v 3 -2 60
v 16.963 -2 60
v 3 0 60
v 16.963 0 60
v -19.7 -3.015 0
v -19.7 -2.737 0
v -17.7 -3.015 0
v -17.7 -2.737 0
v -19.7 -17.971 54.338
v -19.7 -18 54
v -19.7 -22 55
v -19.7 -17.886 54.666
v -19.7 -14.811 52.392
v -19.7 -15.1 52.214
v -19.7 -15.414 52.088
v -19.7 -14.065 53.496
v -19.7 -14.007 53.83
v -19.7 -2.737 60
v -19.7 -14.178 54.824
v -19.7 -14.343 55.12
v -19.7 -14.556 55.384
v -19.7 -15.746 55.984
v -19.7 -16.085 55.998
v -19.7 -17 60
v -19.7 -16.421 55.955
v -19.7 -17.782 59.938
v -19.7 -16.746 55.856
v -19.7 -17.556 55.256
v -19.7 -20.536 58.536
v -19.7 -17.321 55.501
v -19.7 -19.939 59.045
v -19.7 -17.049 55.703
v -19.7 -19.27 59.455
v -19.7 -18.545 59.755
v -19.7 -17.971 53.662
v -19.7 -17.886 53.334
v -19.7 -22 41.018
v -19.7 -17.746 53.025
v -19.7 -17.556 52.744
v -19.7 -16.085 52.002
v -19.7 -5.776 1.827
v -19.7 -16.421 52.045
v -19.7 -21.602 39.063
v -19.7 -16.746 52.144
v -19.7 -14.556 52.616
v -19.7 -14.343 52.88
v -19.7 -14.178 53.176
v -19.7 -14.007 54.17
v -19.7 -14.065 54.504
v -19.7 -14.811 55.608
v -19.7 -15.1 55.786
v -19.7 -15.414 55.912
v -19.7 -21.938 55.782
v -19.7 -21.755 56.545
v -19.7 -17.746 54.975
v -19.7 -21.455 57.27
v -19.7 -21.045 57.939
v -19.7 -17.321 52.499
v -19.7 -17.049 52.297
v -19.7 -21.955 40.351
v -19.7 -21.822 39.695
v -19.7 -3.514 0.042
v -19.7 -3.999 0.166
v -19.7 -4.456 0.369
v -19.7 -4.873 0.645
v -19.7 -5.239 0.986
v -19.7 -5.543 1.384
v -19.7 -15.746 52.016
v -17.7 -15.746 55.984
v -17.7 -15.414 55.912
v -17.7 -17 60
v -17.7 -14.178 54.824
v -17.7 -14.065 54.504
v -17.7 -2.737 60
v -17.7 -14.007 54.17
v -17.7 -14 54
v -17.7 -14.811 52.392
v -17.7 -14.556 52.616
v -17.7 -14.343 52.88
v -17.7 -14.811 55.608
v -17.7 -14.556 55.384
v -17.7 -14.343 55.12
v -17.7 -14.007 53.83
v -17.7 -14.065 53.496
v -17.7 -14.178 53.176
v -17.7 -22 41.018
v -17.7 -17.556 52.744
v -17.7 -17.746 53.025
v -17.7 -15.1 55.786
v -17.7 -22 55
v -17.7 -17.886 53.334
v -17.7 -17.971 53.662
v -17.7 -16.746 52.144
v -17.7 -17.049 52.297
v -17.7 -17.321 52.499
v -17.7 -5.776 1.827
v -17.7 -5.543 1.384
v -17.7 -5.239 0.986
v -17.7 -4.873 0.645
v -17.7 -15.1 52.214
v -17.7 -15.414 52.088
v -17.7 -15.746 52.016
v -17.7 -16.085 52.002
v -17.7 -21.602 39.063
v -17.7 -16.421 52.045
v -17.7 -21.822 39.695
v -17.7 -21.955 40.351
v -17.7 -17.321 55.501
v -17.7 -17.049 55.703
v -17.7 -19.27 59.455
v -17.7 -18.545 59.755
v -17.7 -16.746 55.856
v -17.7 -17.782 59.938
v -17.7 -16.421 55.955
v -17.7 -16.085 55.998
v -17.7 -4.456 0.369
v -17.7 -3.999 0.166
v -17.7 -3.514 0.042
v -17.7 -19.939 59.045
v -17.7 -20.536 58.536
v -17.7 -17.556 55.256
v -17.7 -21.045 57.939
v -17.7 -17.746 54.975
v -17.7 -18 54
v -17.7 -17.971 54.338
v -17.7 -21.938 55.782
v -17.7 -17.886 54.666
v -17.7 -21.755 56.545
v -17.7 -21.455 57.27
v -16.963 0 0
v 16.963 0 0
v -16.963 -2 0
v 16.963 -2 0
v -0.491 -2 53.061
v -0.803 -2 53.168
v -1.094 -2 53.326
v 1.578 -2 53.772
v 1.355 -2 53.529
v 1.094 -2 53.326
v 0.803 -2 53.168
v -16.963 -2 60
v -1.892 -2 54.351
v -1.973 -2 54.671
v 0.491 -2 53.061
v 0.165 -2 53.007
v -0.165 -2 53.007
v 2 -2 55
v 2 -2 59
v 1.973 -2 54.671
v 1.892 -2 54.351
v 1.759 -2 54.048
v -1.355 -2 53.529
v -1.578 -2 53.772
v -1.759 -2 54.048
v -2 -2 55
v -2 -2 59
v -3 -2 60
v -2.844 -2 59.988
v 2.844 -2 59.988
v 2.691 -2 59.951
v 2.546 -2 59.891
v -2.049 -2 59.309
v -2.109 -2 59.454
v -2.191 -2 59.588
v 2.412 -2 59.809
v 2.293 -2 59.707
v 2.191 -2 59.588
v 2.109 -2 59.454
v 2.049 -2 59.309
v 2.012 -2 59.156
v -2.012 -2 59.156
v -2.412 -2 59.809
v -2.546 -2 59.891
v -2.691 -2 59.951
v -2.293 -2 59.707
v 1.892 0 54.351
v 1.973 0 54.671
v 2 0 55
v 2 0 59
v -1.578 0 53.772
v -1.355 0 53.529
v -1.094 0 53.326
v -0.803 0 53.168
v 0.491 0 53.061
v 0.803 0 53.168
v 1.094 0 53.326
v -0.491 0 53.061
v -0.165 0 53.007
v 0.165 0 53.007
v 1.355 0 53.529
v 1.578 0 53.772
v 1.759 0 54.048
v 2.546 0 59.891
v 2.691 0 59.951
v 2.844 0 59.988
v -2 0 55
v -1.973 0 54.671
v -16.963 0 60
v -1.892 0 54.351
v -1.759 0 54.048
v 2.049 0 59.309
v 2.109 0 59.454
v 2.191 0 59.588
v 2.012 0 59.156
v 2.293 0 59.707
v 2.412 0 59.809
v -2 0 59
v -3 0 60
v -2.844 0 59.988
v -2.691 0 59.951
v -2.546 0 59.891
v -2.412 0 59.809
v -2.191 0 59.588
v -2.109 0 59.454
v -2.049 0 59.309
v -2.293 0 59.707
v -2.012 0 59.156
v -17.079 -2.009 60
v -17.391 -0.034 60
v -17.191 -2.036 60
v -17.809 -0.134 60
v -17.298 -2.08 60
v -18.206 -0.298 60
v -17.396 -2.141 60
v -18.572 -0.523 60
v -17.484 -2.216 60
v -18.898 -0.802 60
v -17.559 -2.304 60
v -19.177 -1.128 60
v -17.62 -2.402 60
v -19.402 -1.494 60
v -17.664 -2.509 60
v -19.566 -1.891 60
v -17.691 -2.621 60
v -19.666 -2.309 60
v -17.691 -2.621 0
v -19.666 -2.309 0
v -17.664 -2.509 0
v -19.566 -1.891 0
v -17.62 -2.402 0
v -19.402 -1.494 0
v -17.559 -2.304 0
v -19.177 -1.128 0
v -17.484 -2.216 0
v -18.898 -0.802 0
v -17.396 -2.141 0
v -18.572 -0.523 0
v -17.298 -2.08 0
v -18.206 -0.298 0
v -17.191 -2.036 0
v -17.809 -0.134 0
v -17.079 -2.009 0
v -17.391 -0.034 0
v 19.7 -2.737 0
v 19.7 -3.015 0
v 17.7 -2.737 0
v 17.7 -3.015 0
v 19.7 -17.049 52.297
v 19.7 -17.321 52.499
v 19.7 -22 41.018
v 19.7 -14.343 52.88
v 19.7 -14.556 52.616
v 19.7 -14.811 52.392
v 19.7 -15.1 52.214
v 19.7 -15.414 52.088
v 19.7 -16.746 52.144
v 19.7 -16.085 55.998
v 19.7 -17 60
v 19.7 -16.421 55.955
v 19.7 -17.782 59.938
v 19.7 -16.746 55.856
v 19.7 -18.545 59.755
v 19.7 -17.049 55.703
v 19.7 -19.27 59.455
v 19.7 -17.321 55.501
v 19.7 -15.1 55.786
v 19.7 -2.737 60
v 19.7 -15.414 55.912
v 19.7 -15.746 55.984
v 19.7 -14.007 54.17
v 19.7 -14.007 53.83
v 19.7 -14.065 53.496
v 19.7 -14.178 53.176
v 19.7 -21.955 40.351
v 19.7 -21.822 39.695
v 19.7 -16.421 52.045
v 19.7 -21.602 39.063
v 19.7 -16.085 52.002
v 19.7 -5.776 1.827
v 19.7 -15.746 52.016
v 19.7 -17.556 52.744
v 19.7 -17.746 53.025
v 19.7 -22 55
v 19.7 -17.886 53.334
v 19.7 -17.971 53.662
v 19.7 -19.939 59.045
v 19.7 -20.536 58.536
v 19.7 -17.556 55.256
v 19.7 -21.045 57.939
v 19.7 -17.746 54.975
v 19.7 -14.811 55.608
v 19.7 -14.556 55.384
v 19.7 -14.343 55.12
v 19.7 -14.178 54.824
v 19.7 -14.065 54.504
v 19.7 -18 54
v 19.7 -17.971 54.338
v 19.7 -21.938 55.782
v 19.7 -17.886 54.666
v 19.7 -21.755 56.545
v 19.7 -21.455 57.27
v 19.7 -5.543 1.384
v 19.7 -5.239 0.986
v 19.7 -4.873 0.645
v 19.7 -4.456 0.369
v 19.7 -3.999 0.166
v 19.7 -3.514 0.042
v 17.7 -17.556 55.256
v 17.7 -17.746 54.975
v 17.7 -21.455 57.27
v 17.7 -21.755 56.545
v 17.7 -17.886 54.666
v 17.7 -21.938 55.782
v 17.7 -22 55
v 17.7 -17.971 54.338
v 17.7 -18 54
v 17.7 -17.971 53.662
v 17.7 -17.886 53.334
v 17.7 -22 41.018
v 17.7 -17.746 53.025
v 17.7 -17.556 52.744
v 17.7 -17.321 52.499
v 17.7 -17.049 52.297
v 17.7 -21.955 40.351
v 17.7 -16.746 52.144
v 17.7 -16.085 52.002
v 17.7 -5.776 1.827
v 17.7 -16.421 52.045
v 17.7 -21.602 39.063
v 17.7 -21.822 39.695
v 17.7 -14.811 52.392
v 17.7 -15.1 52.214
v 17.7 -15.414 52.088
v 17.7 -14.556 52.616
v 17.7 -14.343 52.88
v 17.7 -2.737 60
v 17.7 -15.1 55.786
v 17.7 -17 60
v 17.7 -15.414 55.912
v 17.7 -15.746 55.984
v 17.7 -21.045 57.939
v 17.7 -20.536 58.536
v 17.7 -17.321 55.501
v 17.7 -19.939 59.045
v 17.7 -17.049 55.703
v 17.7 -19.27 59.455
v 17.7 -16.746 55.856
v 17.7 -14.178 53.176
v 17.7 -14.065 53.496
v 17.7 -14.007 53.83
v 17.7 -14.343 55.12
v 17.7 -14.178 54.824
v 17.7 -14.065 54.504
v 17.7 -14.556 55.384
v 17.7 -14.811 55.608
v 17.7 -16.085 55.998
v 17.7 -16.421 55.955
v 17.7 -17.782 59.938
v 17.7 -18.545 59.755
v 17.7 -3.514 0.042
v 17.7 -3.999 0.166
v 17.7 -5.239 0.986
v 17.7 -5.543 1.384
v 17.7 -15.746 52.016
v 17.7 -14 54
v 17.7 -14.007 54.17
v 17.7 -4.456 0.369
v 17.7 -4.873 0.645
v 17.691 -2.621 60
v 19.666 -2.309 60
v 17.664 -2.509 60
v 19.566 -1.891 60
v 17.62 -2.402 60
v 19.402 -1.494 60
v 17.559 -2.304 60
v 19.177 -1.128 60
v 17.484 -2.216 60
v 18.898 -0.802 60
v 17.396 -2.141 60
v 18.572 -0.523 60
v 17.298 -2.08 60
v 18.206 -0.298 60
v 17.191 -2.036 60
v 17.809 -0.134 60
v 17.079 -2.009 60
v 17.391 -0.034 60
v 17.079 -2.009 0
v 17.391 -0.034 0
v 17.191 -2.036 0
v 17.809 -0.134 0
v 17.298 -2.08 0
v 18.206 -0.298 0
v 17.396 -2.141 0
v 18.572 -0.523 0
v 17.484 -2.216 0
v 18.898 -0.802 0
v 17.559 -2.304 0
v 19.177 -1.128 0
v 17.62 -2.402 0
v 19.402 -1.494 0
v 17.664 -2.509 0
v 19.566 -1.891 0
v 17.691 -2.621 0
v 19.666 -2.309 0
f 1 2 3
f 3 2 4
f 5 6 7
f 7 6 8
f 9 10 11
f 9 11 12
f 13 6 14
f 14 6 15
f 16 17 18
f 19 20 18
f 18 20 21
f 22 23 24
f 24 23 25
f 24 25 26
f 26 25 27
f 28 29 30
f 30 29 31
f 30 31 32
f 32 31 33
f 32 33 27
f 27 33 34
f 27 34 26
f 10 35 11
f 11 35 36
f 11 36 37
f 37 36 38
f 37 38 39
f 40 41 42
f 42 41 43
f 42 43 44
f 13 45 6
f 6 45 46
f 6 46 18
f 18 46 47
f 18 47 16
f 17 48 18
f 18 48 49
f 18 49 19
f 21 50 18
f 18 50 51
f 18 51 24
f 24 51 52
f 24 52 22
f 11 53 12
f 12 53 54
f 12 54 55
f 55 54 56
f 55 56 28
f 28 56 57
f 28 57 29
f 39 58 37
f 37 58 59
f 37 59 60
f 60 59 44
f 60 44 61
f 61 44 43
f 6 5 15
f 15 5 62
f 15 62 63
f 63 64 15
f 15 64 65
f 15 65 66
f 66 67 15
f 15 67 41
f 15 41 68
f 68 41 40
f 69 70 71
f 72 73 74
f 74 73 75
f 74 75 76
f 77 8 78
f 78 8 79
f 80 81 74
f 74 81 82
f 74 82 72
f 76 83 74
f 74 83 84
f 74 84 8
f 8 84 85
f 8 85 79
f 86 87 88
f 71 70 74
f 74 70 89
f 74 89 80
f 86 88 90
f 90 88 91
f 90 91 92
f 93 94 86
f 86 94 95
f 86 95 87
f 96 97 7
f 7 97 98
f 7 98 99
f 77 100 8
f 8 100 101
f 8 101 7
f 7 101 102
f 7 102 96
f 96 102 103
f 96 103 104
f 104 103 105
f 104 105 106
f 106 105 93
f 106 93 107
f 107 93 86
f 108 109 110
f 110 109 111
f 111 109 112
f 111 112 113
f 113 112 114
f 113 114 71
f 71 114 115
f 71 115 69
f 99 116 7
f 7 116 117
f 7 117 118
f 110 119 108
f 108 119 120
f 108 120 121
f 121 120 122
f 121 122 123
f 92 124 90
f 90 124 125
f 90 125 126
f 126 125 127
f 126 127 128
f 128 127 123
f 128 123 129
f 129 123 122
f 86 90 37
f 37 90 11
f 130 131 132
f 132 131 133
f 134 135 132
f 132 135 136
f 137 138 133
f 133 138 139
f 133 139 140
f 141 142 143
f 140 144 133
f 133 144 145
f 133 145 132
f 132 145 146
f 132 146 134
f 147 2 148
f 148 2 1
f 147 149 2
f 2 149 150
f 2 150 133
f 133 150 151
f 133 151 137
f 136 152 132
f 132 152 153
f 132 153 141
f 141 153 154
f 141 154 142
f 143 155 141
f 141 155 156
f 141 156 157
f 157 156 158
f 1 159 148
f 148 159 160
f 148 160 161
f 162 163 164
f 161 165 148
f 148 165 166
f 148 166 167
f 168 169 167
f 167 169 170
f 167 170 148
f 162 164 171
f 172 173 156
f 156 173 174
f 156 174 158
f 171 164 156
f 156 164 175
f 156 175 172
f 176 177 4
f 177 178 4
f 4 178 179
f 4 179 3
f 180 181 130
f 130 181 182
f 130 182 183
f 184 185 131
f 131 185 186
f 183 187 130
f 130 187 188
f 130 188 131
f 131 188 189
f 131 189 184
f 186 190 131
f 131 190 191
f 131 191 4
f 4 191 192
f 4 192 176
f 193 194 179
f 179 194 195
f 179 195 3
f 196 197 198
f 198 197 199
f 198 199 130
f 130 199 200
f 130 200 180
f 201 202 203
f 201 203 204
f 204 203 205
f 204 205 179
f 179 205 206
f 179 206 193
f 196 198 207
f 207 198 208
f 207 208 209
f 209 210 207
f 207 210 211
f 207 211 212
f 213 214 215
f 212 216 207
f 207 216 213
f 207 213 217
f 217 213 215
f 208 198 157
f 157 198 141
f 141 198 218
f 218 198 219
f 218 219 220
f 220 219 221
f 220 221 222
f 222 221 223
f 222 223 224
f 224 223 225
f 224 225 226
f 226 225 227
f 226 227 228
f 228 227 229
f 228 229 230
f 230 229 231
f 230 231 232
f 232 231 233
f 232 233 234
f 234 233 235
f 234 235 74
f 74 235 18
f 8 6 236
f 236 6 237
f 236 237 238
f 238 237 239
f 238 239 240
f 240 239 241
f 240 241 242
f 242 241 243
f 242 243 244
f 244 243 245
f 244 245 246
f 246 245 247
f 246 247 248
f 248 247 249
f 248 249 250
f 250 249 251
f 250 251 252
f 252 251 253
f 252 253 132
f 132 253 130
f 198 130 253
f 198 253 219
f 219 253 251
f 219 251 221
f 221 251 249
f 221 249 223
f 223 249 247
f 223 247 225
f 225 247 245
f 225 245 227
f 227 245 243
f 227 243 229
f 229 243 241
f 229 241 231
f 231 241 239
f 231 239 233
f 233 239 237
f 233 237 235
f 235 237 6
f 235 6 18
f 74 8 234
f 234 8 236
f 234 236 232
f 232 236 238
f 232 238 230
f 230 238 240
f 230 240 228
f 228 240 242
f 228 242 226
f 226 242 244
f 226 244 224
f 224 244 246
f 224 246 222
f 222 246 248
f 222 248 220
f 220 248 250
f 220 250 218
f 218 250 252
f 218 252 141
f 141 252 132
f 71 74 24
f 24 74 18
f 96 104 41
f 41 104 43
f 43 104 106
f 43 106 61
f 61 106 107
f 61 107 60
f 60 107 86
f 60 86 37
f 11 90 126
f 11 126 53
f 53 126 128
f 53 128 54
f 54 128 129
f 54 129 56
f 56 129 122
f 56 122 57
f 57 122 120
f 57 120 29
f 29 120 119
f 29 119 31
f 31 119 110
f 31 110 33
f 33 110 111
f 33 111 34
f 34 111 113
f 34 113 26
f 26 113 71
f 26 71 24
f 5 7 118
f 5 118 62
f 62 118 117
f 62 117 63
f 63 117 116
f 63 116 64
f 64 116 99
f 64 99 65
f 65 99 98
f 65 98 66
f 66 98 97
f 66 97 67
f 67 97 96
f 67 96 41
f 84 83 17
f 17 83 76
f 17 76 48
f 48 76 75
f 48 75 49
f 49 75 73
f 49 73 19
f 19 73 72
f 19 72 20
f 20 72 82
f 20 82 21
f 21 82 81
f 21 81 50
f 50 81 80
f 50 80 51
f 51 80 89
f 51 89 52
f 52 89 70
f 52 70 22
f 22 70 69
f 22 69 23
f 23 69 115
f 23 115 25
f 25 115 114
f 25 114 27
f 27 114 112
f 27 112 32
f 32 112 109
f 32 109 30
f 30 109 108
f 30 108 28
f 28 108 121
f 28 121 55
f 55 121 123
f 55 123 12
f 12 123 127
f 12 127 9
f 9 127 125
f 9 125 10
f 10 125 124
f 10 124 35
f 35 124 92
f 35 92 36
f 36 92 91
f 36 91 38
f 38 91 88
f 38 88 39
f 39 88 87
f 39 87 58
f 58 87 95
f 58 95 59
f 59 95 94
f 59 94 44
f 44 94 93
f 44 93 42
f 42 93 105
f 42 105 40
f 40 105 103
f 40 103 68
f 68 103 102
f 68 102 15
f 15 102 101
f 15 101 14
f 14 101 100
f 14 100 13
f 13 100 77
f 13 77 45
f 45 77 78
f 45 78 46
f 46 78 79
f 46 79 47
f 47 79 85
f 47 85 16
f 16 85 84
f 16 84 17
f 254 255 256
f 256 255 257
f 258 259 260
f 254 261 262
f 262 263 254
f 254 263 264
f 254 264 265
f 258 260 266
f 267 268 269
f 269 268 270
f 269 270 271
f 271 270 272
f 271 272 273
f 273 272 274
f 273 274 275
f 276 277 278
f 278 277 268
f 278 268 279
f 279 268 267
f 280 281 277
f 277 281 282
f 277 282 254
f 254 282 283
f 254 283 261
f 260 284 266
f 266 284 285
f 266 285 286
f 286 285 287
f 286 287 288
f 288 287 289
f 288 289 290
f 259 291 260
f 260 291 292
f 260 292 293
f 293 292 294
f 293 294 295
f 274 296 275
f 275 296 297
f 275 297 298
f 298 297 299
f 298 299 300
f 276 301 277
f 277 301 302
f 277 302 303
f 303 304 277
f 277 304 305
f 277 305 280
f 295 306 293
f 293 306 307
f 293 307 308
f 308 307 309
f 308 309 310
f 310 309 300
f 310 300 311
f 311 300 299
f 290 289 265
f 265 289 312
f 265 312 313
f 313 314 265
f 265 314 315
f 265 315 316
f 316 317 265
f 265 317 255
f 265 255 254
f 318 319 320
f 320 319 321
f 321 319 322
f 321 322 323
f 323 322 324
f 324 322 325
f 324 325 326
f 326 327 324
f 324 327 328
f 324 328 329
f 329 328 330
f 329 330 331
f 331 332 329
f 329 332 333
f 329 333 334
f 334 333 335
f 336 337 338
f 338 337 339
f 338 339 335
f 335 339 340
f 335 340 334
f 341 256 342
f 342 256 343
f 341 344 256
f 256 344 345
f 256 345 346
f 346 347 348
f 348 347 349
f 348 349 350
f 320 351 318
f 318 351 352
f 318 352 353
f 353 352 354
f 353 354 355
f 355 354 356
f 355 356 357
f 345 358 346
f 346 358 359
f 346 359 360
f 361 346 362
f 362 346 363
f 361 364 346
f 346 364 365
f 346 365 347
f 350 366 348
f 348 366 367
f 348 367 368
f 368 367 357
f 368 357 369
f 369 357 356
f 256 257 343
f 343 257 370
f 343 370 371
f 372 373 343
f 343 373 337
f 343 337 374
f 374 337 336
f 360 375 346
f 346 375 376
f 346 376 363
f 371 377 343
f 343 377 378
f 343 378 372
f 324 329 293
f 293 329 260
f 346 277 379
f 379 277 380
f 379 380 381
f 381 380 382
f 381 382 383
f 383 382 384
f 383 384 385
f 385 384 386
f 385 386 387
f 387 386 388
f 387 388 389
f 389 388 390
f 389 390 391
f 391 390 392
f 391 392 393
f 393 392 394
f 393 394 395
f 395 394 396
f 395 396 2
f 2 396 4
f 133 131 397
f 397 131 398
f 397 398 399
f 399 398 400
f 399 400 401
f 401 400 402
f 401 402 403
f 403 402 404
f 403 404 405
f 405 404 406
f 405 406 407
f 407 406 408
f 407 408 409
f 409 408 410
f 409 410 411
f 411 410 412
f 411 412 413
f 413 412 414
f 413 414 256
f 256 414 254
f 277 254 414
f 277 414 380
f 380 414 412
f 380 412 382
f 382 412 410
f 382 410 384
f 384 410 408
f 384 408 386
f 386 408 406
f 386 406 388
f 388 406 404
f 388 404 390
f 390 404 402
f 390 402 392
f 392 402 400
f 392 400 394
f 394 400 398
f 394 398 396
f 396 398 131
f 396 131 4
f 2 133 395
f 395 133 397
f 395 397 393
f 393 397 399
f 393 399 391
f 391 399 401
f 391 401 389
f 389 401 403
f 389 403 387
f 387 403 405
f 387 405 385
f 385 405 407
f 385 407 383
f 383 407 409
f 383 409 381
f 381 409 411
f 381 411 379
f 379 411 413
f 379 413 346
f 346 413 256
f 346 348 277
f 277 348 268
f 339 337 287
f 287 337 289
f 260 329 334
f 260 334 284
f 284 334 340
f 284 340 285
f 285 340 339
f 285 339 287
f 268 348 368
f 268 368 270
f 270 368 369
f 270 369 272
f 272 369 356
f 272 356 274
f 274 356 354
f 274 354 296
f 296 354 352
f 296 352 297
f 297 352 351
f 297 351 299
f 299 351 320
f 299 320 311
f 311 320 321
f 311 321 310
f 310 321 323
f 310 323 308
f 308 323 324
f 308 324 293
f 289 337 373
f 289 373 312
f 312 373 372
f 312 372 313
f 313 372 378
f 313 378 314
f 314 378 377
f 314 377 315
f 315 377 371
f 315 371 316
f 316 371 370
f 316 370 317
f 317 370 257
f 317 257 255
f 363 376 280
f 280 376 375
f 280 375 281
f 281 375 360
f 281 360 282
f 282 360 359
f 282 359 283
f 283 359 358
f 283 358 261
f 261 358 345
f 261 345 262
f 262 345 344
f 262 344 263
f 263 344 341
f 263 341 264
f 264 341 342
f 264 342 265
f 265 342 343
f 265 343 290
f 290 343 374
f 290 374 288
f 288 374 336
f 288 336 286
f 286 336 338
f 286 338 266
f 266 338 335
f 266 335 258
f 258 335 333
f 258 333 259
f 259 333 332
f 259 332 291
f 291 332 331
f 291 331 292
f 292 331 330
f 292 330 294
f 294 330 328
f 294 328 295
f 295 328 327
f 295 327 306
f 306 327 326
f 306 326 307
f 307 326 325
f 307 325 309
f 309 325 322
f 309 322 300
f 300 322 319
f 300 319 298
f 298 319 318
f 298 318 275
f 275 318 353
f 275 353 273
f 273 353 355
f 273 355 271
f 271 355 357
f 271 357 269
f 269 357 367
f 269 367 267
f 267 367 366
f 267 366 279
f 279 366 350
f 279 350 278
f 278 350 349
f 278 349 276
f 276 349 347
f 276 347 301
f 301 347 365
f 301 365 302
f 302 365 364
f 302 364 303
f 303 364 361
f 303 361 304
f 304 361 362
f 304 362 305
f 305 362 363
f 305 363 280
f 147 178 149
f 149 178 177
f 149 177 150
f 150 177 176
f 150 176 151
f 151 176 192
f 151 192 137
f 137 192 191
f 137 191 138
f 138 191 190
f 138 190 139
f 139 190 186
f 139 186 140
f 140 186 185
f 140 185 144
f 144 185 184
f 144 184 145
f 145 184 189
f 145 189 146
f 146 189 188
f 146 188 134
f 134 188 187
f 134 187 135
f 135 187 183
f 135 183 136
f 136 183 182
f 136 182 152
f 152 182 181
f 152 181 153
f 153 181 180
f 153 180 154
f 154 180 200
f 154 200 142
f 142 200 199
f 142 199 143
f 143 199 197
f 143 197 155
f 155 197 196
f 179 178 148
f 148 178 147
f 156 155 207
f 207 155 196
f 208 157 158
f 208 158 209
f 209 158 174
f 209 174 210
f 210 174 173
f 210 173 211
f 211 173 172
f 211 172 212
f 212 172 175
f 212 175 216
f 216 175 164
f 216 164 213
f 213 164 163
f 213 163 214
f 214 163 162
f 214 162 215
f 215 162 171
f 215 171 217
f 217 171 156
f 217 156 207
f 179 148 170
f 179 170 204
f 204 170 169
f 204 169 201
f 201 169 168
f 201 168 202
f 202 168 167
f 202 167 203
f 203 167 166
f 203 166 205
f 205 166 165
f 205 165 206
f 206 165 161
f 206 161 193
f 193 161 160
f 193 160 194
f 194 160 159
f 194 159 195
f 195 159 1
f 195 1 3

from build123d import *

# Parameters (mm, degrees)
SKETCH1_W                    = 17.7
SKETCH1_H                    = 60
BASE_FLANGE2_DEPTH           = 2
EDGE_FLANGE2_STRIP_W         = 9.4732
EDGE_FLANGE2_STRIP_H         = 2
EDGE_FLANGE2_STRIP_CUT_DEPTH = 60
EDGE_FLANGE2_DEPTH           = 60
CUT_EXTRUDE5_DEPTH           = 2
FILLET4_R                    = 5
FILLET5_R                    = 3
SKETCH22_R                   = 2
CUT_EXTRUDE6_DEPTH           = 2
CUT_EXTRUDE7_DEPTH           = 2
FILLET6_R                    = 1


# Sheet-metal steps are written as plain solids
with BuildPart() as part:
    # Sketch1 → Base-Flange2 (new body)
    with BuildSketch(Plane(origin=(0, 0, 0), x_dir=(1, 0, 0), z_dir=(0, 1, 0))):
        with Locations((-8.85, -30)):
            Rectangle(SKETCH1_W, SKETCH1_H)
    extrude(amount=-BASE_FLANGE2_DEPTH)

    # Edge-Flange2 strip (across the edge) → Edge-Flange2 strip cut (cut)
    with BuildSketch(Plane(origin=(-17.7, -2, 60), x_dir=(1, 0, 0), z_dir=(0, 0, -1))):
        with Locations((-4, -1)):
            Rectangle(EDGE_FLANGE2_STRIP_W, EDGE_FLANGE2_STRIP_H)
    extrude(amount=EDGE_FLANGE2_STRIP_CUT_DEPTH, mode=Mode.SUBTRACT)

    # Edge-Flange2 section (across the edge) → Edge-Flange2 (add)
    with BuildSketch(Plane(origin=(-17.7, -2, 60), x_dir=(1, 0, 0), z_dir=(0, 0, -1))):
        with BuildLine():
            Line((-2, 0.7366), (-2, 20))
            Line((-2, 20), (0, 20))
            Line((0, 20), (0, 0.7366))
            ThreePointArc((0, 0.7366), (0.215745145, 0.215745145), (0.7366, 0))
            Line((0.7366, 0), (0.7366, -2))
            ThreePointArc((0.7366, -2), (-1.198468417, -1.198468417), (-2, 0.7366))
        make_face()
    extrude(amount=EDGE_FLANGE2_DEPTH)

    # Sketch20 → Cut-Extrude5 (cut)
    with BuildSketch(Plane.ZY.offset(19.7)):
        Polygon((0, -5), (40, -22), (0, -22), align=None)
    extrude(amount=-CUT_EXTRUDE5_DEPTH, mode=Mode.SUBTRACT)

    # Fillet4
    fillet4_edges = [part.edges().sort_by_distance(p)[0] for p in [
        (-18.7, -22, 60),
        (-18.7, -22, 40),
    ]]
    fillet(fillet4_edges, radius=FILLET4_R)

    # Fillet5
    fillet5_edges = [part.edges().sort_by_distance(p)[0] for p in [
        (-18.7, -5, 0),
    ]]
    fillet(fillet5_edges, radius=FILLET5_R)

    # Sketch22 → Cut-Extrude6 (cut)
    with BuildSketch(Plane.ZY.offset(19.7)):
        with Locations(Location((54, -16, 0), (0, 0, 270))):
            Circle(SKETCH22_R)
    extrude(amount=-CUT_EXTRUDE6_DEPTH, mode=Mode.SUBTRACT)

    # Mirror1: part across plane


with BuildPart() as part_1:
    add(part.part)
    add(part.part.mirror(Plane(origin=(0, -2, 60), x_dir=(0, 0, 1), z_dir=(1, 0, 0))))

    # Sketch28 → Cut-Extrude7 (cut)
    with BuildSketch(Plane(origin=(0, 0, 0), x_dir=(1, 0, 0), z_dir=(0, 1, 0))):
        with BuildLine():
            Line((2, -55), (2, -60))
            Line((2, -60), (-2, -60))
            Line((-2, -60), (-2, -55))
            ThreePointArc((-2, -55), (0, -53), (2, -55))
        make_face()
    extrude(amount=-CUT_EXTRUDE7_DEPTH, mode=Mode.SUBTRACT)

    # Fillet6
    fillet6_edges = [part_1.edges().sort_by_distance(p)[0] for p in [
        (2, -1, 60),
        (-2, -1, 60),
    ]]
    fillet(fillet6_edges, radius=FILLET6_R)


solid = part_1.part
